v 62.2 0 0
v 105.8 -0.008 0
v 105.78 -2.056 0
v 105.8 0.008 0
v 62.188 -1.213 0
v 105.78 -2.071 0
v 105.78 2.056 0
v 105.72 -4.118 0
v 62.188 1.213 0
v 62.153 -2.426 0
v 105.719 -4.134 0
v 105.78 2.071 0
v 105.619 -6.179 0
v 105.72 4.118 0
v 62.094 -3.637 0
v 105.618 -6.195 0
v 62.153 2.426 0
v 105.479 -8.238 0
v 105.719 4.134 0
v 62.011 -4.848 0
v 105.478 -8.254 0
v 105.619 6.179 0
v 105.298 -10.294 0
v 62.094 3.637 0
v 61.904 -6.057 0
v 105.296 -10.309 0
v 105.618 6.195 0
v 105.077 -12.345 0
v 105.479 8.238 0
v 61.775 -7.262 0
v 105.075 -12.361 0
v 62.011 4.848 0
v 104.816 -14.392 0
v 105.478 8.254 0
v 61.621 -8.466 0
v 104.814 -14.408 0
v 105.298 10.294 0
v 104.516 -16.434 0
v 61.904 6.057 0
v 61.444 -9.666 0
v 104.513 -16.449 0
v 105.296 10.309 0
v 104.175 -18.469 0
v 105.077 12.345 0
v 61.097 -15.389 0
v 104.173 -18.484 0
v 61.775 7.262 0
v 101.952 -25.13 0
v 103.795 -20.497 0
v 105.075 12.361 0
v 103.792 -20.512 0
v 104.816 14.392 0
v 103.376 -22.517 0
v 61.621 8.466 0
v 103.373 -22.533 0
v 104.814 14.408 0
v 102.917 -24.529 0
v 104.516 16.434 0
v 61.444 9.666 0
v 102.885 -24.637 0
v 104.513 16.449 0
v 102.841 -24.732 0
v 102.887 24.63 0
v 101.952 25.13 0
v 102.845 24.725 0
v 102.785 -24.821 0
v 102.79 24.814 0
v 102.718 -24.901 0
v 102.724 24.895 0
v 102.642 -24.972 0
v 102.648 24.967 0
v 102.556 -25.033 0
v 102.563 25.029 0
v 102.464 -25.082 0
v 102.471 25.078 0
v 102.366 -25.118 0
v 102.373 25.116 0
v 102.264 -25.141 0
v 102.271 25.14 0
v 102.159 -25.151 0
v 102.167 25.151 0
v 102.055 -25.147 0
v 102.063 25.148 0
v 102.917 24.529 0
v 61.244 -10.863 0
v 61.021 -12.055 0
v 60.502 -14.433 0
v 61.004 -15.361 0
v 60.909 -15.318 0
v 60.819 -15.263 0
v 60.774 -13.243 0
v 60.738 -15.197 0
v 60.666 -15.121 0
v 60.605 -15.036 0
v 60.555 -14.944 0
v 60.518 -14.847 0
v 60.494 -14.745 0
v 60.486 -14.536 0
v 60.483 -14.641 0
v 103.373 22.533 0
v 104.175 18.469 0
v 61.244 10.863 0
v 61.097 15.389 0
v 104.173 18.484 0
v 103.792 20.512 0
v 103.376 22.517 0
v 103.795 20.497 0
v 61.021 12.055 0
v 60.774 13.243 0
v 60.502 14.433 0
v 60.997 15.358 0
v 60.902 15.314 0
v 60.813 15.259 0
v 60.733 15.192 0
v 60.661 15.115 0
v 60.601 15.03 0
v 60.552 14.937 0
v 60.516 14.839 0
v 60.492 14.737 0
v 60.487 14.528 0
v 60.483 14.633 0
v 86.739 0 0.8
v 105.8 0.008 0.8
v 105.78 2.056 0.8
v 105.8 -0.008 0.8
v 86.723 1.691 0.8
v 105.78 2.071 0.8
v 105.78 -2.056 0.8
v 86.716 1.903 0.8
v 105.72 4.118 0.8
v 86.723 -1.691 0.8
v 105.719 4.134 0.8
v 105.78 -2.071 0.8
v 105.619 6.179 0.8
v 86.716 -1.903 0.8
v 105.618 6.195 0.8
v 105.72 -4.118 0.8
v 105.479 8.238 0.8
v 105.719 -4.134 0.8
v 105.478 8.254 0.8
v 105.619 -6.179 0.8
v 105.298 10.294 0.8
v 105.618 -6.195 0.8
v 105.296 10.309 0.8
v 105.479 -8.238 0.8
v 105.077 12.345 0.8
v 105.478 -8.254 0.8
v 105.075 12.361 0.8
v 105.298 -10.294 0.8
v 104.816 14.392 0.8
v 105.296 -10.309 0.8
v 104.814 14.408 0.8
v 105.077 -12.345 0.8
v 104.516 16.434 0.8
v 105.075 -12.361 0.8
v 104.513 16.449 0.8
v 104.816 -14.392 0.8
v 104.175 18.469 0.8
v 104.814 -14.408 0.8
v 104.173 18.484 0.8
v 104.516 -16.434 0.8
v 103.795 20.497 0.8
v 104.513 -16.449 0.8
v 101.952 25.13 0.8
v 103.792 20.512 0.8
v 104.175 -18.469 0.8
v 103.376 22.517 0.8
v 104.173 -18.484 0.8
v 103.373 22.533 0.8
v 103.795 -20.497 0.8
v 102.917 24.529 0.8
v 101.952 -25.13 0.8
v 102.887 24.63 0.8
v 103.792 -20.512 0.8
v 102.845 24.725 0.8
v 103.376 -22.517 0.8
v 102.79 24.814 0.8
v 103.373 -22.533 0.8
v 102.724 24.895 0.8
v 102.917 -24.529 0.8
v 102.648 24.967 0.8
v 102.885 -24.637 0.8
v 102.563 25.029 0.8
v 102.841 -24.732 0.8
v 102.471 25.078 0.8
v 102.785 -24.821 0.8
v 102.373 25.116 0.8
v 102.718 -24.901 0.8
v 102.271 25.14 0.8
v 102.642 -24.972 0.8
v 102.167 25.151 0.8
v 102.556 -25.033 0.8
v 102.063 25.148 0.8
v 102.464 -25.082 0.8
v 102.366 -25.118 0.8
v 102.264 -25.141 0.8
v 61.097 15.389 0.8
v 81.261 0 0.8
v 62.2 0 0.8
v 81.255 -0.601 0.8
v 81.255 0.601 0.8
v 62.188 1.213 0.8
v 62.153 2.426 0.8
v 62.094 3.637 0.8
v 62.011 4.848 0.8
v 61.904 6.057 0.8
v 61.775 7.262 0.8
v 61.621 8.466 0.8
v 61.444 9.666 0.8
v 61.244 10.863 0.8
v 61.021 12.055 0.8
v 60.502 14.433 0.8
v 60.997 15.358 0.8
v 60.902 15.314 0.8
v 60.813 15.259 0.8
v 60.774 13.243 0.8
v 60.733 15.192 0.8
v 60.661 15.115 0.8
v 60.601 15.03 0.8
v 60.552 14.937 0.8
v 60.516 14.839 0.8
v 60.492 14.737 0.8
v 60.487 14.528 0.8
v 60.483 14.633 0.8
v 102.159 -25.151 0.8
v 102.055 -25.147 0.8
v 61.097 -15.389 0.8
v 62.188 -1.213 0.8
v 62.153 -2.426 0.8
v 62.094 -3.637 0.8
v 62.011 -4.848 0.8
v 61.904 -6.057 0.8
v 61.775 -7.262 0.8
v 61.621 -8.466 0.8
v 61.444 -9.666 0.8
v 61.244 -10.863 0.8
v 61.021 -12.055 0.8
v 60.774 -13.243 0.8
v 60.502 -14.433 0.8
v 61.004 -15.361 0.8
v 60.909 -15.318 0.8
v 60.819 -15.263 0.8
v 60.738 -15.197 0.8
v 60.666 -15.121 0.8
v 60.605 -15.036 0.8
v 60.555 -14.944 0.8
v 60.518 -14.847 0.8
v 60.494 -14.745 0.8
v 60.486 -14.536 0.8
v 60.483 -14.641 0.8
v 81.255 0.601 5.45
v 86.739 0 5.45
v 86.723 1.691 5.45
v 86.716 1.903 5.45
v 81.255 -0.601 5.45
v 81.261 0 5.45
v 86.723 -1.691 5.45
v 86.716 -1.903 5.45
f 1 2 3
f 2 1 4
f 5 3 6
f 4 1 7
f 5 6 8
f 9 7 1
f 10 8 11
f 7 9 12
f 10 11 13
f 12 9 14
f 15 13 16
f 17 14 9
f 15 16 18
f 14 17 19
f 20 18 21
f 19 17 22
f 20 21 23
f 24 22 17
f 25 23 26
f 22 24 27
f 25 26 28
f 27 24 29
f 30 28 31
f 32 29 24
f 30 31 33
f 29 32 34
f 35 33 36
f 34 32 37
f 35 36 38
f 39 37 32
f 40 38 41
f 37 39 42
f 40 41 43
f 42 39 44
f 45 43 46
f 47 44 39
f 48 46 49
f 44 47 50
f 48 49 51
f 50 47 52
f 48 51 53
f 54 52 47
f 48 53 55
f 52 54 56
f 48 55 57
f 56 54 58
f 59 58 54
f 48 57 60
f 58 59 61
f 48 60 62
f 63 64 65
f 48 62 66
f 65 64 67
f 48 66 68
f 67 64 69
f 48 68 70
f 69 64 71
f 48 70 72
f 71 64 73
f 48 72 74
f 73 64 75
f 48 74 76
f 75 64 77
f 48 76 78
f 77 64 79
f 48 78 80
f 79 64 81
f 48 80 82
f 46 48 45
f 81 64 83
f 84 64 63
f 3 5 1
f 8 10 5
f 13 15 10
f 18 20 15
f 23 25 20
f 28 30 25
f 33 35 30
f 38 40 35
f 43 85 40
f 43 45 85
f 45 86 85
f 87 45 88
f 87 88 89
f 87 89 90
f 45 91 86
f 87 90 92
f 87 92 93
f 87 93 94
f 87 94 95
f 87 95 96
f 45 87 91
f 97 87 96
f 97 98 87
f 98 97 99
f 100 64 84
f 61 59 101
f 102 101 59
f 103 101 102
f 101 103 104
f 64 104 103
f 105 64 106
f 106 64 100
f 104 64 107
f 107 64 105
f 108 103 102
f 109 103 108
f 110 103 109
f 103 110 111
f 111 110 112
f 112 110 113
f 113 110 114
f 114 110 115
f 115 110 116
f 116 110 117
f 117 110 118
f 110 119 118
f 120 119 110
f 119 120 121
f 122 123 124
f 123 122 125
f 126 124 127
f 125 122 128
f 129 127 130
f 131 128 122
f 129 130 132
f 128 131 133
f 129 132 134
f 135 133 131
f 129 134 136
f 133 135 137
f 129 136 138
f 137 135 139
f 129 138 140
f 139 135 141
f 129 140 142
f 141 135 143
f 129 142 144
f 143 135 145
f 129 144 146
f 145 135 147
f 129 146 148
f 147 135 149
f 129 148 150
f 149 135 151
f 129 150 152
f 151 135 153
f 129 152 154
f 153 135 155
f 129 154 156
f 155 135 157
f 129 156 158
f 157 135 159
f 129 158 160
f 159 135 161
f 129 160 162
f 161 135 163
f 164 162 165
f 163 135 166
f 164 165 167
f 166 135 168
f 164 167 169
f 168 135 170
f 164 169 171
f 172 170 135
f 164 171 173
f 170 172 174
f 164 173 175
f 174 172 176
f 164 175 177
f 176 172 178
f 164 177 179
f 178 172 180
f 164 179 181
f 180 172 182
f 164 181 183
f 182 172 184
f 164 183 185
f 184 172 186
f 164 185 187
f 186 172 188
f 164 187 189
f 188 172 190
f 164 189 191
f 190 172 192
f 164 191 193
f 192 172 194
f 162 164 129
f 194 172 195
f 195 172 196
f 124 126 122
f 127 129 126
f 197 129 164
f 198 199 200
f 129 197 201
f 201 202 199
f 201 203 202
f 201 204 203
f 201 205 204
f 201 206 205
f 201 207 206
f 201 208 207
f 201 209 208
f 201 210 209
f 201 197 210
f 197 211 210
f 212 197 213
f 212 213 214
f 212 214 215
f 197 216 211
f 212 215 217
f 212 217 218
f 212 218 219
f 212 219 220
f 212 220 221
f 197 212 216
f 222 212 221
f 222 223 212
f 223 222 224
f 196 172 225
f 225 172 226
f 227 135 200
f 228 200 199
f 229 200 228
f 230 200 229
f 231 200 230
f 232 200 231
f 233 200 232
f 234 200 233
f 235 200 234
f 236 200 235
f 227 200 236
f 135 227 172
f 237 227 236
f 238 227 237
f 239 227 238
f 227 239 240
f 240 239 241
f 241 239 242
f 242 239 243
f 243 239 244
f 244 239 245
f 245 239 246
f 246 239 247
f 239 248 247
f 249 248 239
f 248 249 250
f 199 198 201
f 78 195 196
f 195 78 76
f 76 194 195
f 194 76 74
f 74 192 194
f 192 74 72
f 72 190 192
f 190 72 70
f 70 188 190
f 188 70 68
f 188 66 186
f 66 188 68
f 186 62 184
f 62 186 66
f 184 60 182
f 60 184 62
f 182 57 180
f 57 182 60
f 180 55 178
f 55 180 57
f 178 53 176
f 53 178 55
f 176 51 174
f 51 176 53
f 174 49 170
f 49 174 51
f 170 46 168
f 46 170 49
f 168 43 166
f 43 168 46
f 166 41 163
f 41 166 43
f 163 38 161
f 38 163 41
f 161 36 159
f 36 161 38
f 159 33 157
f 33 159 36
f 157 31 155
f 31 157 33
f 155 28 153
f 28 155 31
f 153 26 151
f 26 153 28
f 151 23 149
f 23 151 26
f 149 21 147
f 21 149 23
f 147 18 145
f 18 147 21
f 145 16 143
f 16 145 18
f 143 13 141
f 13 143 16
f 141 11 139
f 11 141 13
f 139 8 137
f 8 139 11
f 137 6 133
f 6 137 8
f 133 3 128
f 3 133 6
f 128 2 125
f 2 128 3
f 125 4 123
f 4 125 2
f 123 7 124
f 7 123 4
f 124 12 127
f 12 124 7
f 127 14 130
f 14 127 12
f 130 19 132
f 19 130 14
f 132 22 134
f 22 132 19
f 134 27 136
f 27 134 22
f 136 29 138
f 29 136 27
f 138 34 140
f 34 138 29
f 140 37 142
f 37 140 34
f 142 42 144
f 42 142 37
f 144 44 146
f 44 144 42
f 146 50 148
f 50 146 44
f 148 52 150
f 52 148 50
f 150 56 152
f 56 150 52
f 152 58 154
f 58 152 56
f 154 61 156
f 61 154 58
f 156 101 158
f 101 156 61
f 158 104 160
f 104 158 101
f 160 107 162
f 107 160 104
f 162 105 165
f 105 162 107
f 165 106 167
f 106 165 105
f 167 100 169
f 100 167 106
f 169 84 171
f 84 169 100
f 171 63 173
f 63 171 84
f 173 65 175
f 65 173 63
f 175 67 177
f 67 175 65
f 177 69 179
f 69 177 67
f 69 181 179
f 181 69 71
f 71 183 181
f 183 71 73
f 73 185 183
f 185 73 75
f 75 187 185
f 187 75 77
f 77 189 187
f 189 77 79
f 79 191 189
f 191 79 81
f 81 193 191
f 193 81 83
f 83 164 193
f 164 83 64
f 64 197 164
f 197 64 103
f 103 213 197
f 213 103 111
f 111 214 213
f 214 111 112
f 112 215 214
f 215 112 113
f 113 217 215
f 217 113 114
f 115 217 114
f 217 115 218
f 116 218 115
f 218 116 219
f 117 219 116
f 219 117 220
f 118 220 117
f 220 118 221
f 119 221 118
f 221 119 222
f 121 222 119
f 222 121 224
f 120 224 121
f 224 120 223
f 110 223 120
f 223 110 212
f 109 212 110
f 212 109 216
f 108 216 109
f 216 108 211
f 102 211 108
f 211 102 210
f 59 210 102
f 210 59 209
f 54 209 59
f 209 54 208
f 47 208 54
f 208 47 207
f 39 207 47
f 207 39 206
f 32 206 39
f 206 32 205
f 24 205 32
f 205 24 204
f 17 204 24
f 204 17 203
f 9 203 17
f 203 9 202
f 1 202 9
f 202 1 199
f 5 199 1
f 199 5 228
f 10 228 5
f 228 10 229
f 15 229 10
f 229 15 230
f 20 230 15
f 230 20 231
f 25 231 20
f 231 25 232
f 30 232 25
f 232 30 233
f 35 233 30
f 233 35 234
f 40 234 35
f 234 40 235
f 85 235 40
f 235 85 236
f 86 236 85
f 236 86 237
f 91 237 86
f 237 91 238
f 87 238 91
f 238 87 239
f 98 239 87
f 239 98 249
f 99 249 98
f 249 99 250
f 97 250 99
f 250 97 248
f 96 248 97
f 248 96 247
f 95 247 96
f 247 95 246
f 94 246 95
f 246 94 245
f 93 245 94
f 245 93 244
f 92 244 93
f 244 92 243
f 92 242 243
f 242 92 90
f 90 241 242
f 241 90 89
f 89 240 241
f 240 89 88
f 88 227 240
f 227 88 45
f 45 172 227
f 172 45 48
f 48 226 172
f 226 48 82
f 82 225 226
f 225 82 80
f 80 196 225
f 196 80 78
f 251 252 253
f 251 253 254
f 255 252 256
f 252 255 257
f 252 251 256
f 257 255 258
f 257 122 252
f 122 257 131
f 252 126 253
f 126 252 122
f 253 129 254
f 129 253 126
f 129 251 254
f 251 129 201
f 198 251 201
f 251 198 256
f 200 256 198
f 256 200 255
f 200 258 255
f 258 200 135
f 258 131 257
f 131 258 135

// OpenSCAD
// file: parameters.scad
// =============================================================================
// Gen-CF — nightly 2026-10-14 (physics_scorer, honest magpylib watts)
// Stator-only upgrade for an existing Gen-CA: the R84 arcs, hubs and Ø194 steel stay as they are; a new annular 12-bobbin stator with 4.65 mm copper (Gen-CD-style thin window) and r63–105 bobbins replaces the old r64–104 × 4.95 mm stator, together with a shorter gap sleeve and matching frame rods / bridges. Frame rods pushed to R108.5 for ≥1.0 mm web to the bays. No new magnets or steel. Scans showed no R84 stator beats Gen-CA’s own 8.492 W; this kit is the best distinct modular swap (≈8.41 W scan, ≈375 m).
// Clocking 0 deg (magnets N facing S) + D-flat keyed bore + index notch + flip-symmetric hole map.
// Windable 2-piece bobbin; turns = physics_scorer turns_fit; copper only between flanges.
// Steel back-iron: 2× Ø194 × 4.76 mm (3/16") mild-steel discs (steel_backiron_disc.dxf); magnets sit ON the steel
// (through-pockets) -> score with --back-iron. Night 2026-10-14.
// =============================================================================
topology            = "dual_rotor";

// --- Wire / winding (physics_scorer winding-fit) -------------------------------
wire_awg            = 26;
wire_od             = 0.45;     // insulated OD mm (bare 0.405)
fill_realistic      = 0.65;     // insulated-wire area / window (DENSE layered wind with a jig; scorer cap 0.65)
turns               = 347;       // = physics_scorer turns_fit (do NOT raise)
coil_former_type    = "bobbin";
coil_core_inset     = 18.26;     // radial copper build: hub = copper boundary inset by this
wind_build_axial    = 0.0;      // nothing proud of the flanges
wind_build_radial   = 0.0;

// --- Bobbin (base + lid) ---------------------------------------------------------
coil_id_r           = 63.00;    // copper boundary sector
coil_od_r           = 105.00;
span_deg            = 26.82;    // = pitch - 2*asin((wall+0.85)/coil_id_r) -> >=1.2 mm stator web
former_web          = 4.65;     // copper height between flanges (TALL copper: steel keeps Bz up)
flange_t            = 0.80;     // >= 0.8 mm FDM wall rule (tall winds push on the flanges)
wall                = 0.80;     // flange lip beyond copper
former_bare_h       = former_web + 2 * flange_t;
coil_envelope_h     = former_bare_h + 2 * wind_build_axial;
tab_w               = 7.0;
tab_len             = 7.0;
tab_h               = former_bare_h / 2;
pin_d               = 1.9;      // 1.75 mm filament locating pin
coil_mount_r        = coil_od_r + 0.2 + 4.0;
lead_y              = 1.6;
lead_slot_w         = 0.9;
lead_groove_d       = 0.6;

// --- Gap -------------------------------------------------------------------------
run_clear           = 0.50;     // rotor face -> flange
gap_spacer_h        = run_clear + wind_build_axial;
m2m                 = coil_envelope_h + 2 * run_clear;   // rotor face to rotor face (= gap_sleeve length)

// --- Stator ----------------------------------------------------------------------
coil_stations       = 12;
bay_clear           = 0.35;     // 0.35 mm: bobbin BASES print IN PLACE inside the stator bays (print-in-place gap), then pop out
stator_thick        = former_bare_h;                        // bobbins flush both faces
stator_od           = 228;
shaft_clear_stator  = 14.0;     // stator is static; gap sleeve OD 12 spins inside
stator_ir           = 57.85;    // ANNULAR stator: open centre (nested one-plate pack); inner rim 4.0 mm

// --- Rotor(s) --------------------------------------------------------------------
magnet_Br           = 1.43;     // N52
magnet_d_large      = 20.0;
magnet_h_large      = 5.0;      // one O20x5 per pocket
magnet_h_small      = 5.0;      // unused: no O5 pockets in this kit
halbach_magnetisation = "none";  // NO O5 assist magnets in this kit (scan: they lower the 4-pole score)
rotor_b_same_axis   = true;     // same-index magnets share one axis: N faces S across the gap
large_pocket_d      = 20.3;
small_pocket_d      = 5.3;
pocket_h            = 5.00;     // THROUGH the carrier: magnet back face sits on the steel disc (FLUSH seat: carrier = magnet height, magnet face level with the rotor face)
large_n             = 8;
R_large             = 84.0;
small_r_list        = [];       // no O5 pockets
carrier_od          = 194.0;
ring_ir             = 70.85;    // RING rotor: PLA magnet ring r ring_ir..carrier_od/2 (steel disc = structural rotor)
hub_flange_od       = 74.0;     // separate rotor_hub flange (inside the ring, flush with the ring face)
csk_d               = 6.6;      // M3 countersunk head pocket (ISO 10642 head 6.0 nominal) on the stator face
csk_depth           = 1.55;     // = (csk_d - m3_clear) / 2: 90 deg cone; head sits 0.3 mm below the face
n_seg               = 8;        // magnet-carrier ARCS per rotor (segmented carrier)
seg_deg             = 360 / n_seg;
seg_start           = -22.5;   // arc edge angle (between pocket 0 and its clamp bolt)
seg_kerf_deg        = 0.4;      // gap between neighbouring arcs on the steel
carrier_thick       = pocket_h;
hub_h               = 12.0;     // > steel_t + insert: radial set-screw clears the steel
hub_od              = 24.0;     // slim hub so the M4 brace rods fit at R~18 inside the coil ring
hub_insert_d        = 4.0;      // M3 heat-set insert, radial, bears on the D-flat
rotor_b_offset_deg  = 0.0;      // CLOCKING: magnets directly opposite
shaft_key           = "dflat";
dflat_depth         = 0.5;      // 8 mm shaft with 0.5 mm flat (7.5 across flat)
index_notch_d       = 3.0;

// --- Steel back-iron (buyable laser-cut) -------------------------------------------
steel_t             = 4.76;      // mild steel thickness (image method ignores it; sized from steel_flux.py so the return path stays well below saturation)
steel_center_hole   = 26.0;     // slips over the rotor hub (OD 24)
steel_od            = carrier_od;   // steel disc OD = rotor carrier OD

// --- Modular MAX interface ----------------------------------------------------------
shaft_bore          = 8.35;
dflat_x             = 4.0 - dflat_depth + (shaft_bore - 8.0) / 2;
bearing_d           = 21.85;
bearing_h           = 7.2;
m3_clear            = 3.5;
bolt_r_inner        = 30.0;     // M3 steel-disc clamp bolts (inside the magnet ring)
bolt_n_inner        = 4;
bolt_inner_angles   = [0, 90, 180, 270];
bolt_r_outer        = 84.0;     // second M3 steel-disc clamp ring
bolt_outer_angles   = [22.5, 67.5, 112.5, 157.5, 202.5, 247.5, 292.5, 337.5];
flange_bolt_r       = 108.5;     // frame rods: OUTSIDE the rotor OD (rotors spin inside them)
flange_bolt_n       = 4;
flange_bolt_offset  = 45.00;    // between coil stations -> never cuts a lead groove/tab
brace_r             = 18.0;
brace_d             = 4.3;      // temporary M4 jack rods (assembly only)
brace_n             = 4;
brace_angles        = [45, 135, 225, 315];          // flip-symmetric

spacer_pad_od       = 14.0;
spacer_pad_id       = m3_clear;
endbell_od          = 227.0;
endbell_thick       = 8.0;
endbell_shaft_clear = 10.0;
collar_h            = 10.0;
standoff_od         = 9.0;
frame_standoff_h    = run_clear + carrier_thick + hub_h + collar_h + 2.0;
sleeve_od           = 12.0;
plate_max_mm        = 410;

$fn = 64;
// main file
// Gen-CF — bobbin BASE (bottom flange + hub). Print x12, flange down. Wind 26 AWG x 347 t around
// the hub with the LID glued on (coil_lid.stl). Copper lives ONLY between the flanges (no proud winds).
include <parameters.scad>;
$fn = 48;
module sector_2d(r_in, r_out, ang) {
    polygon([
        for (a = [-ang/2 : ang/24 : ang/2]) [r_in*cos(a), r_in*sin(a)],
        for (a = [ang/2 : -ang/24 : -ang/2]) [r_out*cos(a), r_out*sin(a)]
    ]);
}
module footprint_2d() { offset(r=wall) sector_2d(coil_id_r, coil_od_r, span_deg); }
module hub_2d()       { offset(delta=-coil_core_inset) sector_2d(coil_id_r, coil_od_r, span_deg); }

union() {
    linear_extrude(flange_t) footprint_2d();
    translate([0, 0, flange_t - 0.01]) linear_extrude(former_web + 0.01) hub_2d();
}
